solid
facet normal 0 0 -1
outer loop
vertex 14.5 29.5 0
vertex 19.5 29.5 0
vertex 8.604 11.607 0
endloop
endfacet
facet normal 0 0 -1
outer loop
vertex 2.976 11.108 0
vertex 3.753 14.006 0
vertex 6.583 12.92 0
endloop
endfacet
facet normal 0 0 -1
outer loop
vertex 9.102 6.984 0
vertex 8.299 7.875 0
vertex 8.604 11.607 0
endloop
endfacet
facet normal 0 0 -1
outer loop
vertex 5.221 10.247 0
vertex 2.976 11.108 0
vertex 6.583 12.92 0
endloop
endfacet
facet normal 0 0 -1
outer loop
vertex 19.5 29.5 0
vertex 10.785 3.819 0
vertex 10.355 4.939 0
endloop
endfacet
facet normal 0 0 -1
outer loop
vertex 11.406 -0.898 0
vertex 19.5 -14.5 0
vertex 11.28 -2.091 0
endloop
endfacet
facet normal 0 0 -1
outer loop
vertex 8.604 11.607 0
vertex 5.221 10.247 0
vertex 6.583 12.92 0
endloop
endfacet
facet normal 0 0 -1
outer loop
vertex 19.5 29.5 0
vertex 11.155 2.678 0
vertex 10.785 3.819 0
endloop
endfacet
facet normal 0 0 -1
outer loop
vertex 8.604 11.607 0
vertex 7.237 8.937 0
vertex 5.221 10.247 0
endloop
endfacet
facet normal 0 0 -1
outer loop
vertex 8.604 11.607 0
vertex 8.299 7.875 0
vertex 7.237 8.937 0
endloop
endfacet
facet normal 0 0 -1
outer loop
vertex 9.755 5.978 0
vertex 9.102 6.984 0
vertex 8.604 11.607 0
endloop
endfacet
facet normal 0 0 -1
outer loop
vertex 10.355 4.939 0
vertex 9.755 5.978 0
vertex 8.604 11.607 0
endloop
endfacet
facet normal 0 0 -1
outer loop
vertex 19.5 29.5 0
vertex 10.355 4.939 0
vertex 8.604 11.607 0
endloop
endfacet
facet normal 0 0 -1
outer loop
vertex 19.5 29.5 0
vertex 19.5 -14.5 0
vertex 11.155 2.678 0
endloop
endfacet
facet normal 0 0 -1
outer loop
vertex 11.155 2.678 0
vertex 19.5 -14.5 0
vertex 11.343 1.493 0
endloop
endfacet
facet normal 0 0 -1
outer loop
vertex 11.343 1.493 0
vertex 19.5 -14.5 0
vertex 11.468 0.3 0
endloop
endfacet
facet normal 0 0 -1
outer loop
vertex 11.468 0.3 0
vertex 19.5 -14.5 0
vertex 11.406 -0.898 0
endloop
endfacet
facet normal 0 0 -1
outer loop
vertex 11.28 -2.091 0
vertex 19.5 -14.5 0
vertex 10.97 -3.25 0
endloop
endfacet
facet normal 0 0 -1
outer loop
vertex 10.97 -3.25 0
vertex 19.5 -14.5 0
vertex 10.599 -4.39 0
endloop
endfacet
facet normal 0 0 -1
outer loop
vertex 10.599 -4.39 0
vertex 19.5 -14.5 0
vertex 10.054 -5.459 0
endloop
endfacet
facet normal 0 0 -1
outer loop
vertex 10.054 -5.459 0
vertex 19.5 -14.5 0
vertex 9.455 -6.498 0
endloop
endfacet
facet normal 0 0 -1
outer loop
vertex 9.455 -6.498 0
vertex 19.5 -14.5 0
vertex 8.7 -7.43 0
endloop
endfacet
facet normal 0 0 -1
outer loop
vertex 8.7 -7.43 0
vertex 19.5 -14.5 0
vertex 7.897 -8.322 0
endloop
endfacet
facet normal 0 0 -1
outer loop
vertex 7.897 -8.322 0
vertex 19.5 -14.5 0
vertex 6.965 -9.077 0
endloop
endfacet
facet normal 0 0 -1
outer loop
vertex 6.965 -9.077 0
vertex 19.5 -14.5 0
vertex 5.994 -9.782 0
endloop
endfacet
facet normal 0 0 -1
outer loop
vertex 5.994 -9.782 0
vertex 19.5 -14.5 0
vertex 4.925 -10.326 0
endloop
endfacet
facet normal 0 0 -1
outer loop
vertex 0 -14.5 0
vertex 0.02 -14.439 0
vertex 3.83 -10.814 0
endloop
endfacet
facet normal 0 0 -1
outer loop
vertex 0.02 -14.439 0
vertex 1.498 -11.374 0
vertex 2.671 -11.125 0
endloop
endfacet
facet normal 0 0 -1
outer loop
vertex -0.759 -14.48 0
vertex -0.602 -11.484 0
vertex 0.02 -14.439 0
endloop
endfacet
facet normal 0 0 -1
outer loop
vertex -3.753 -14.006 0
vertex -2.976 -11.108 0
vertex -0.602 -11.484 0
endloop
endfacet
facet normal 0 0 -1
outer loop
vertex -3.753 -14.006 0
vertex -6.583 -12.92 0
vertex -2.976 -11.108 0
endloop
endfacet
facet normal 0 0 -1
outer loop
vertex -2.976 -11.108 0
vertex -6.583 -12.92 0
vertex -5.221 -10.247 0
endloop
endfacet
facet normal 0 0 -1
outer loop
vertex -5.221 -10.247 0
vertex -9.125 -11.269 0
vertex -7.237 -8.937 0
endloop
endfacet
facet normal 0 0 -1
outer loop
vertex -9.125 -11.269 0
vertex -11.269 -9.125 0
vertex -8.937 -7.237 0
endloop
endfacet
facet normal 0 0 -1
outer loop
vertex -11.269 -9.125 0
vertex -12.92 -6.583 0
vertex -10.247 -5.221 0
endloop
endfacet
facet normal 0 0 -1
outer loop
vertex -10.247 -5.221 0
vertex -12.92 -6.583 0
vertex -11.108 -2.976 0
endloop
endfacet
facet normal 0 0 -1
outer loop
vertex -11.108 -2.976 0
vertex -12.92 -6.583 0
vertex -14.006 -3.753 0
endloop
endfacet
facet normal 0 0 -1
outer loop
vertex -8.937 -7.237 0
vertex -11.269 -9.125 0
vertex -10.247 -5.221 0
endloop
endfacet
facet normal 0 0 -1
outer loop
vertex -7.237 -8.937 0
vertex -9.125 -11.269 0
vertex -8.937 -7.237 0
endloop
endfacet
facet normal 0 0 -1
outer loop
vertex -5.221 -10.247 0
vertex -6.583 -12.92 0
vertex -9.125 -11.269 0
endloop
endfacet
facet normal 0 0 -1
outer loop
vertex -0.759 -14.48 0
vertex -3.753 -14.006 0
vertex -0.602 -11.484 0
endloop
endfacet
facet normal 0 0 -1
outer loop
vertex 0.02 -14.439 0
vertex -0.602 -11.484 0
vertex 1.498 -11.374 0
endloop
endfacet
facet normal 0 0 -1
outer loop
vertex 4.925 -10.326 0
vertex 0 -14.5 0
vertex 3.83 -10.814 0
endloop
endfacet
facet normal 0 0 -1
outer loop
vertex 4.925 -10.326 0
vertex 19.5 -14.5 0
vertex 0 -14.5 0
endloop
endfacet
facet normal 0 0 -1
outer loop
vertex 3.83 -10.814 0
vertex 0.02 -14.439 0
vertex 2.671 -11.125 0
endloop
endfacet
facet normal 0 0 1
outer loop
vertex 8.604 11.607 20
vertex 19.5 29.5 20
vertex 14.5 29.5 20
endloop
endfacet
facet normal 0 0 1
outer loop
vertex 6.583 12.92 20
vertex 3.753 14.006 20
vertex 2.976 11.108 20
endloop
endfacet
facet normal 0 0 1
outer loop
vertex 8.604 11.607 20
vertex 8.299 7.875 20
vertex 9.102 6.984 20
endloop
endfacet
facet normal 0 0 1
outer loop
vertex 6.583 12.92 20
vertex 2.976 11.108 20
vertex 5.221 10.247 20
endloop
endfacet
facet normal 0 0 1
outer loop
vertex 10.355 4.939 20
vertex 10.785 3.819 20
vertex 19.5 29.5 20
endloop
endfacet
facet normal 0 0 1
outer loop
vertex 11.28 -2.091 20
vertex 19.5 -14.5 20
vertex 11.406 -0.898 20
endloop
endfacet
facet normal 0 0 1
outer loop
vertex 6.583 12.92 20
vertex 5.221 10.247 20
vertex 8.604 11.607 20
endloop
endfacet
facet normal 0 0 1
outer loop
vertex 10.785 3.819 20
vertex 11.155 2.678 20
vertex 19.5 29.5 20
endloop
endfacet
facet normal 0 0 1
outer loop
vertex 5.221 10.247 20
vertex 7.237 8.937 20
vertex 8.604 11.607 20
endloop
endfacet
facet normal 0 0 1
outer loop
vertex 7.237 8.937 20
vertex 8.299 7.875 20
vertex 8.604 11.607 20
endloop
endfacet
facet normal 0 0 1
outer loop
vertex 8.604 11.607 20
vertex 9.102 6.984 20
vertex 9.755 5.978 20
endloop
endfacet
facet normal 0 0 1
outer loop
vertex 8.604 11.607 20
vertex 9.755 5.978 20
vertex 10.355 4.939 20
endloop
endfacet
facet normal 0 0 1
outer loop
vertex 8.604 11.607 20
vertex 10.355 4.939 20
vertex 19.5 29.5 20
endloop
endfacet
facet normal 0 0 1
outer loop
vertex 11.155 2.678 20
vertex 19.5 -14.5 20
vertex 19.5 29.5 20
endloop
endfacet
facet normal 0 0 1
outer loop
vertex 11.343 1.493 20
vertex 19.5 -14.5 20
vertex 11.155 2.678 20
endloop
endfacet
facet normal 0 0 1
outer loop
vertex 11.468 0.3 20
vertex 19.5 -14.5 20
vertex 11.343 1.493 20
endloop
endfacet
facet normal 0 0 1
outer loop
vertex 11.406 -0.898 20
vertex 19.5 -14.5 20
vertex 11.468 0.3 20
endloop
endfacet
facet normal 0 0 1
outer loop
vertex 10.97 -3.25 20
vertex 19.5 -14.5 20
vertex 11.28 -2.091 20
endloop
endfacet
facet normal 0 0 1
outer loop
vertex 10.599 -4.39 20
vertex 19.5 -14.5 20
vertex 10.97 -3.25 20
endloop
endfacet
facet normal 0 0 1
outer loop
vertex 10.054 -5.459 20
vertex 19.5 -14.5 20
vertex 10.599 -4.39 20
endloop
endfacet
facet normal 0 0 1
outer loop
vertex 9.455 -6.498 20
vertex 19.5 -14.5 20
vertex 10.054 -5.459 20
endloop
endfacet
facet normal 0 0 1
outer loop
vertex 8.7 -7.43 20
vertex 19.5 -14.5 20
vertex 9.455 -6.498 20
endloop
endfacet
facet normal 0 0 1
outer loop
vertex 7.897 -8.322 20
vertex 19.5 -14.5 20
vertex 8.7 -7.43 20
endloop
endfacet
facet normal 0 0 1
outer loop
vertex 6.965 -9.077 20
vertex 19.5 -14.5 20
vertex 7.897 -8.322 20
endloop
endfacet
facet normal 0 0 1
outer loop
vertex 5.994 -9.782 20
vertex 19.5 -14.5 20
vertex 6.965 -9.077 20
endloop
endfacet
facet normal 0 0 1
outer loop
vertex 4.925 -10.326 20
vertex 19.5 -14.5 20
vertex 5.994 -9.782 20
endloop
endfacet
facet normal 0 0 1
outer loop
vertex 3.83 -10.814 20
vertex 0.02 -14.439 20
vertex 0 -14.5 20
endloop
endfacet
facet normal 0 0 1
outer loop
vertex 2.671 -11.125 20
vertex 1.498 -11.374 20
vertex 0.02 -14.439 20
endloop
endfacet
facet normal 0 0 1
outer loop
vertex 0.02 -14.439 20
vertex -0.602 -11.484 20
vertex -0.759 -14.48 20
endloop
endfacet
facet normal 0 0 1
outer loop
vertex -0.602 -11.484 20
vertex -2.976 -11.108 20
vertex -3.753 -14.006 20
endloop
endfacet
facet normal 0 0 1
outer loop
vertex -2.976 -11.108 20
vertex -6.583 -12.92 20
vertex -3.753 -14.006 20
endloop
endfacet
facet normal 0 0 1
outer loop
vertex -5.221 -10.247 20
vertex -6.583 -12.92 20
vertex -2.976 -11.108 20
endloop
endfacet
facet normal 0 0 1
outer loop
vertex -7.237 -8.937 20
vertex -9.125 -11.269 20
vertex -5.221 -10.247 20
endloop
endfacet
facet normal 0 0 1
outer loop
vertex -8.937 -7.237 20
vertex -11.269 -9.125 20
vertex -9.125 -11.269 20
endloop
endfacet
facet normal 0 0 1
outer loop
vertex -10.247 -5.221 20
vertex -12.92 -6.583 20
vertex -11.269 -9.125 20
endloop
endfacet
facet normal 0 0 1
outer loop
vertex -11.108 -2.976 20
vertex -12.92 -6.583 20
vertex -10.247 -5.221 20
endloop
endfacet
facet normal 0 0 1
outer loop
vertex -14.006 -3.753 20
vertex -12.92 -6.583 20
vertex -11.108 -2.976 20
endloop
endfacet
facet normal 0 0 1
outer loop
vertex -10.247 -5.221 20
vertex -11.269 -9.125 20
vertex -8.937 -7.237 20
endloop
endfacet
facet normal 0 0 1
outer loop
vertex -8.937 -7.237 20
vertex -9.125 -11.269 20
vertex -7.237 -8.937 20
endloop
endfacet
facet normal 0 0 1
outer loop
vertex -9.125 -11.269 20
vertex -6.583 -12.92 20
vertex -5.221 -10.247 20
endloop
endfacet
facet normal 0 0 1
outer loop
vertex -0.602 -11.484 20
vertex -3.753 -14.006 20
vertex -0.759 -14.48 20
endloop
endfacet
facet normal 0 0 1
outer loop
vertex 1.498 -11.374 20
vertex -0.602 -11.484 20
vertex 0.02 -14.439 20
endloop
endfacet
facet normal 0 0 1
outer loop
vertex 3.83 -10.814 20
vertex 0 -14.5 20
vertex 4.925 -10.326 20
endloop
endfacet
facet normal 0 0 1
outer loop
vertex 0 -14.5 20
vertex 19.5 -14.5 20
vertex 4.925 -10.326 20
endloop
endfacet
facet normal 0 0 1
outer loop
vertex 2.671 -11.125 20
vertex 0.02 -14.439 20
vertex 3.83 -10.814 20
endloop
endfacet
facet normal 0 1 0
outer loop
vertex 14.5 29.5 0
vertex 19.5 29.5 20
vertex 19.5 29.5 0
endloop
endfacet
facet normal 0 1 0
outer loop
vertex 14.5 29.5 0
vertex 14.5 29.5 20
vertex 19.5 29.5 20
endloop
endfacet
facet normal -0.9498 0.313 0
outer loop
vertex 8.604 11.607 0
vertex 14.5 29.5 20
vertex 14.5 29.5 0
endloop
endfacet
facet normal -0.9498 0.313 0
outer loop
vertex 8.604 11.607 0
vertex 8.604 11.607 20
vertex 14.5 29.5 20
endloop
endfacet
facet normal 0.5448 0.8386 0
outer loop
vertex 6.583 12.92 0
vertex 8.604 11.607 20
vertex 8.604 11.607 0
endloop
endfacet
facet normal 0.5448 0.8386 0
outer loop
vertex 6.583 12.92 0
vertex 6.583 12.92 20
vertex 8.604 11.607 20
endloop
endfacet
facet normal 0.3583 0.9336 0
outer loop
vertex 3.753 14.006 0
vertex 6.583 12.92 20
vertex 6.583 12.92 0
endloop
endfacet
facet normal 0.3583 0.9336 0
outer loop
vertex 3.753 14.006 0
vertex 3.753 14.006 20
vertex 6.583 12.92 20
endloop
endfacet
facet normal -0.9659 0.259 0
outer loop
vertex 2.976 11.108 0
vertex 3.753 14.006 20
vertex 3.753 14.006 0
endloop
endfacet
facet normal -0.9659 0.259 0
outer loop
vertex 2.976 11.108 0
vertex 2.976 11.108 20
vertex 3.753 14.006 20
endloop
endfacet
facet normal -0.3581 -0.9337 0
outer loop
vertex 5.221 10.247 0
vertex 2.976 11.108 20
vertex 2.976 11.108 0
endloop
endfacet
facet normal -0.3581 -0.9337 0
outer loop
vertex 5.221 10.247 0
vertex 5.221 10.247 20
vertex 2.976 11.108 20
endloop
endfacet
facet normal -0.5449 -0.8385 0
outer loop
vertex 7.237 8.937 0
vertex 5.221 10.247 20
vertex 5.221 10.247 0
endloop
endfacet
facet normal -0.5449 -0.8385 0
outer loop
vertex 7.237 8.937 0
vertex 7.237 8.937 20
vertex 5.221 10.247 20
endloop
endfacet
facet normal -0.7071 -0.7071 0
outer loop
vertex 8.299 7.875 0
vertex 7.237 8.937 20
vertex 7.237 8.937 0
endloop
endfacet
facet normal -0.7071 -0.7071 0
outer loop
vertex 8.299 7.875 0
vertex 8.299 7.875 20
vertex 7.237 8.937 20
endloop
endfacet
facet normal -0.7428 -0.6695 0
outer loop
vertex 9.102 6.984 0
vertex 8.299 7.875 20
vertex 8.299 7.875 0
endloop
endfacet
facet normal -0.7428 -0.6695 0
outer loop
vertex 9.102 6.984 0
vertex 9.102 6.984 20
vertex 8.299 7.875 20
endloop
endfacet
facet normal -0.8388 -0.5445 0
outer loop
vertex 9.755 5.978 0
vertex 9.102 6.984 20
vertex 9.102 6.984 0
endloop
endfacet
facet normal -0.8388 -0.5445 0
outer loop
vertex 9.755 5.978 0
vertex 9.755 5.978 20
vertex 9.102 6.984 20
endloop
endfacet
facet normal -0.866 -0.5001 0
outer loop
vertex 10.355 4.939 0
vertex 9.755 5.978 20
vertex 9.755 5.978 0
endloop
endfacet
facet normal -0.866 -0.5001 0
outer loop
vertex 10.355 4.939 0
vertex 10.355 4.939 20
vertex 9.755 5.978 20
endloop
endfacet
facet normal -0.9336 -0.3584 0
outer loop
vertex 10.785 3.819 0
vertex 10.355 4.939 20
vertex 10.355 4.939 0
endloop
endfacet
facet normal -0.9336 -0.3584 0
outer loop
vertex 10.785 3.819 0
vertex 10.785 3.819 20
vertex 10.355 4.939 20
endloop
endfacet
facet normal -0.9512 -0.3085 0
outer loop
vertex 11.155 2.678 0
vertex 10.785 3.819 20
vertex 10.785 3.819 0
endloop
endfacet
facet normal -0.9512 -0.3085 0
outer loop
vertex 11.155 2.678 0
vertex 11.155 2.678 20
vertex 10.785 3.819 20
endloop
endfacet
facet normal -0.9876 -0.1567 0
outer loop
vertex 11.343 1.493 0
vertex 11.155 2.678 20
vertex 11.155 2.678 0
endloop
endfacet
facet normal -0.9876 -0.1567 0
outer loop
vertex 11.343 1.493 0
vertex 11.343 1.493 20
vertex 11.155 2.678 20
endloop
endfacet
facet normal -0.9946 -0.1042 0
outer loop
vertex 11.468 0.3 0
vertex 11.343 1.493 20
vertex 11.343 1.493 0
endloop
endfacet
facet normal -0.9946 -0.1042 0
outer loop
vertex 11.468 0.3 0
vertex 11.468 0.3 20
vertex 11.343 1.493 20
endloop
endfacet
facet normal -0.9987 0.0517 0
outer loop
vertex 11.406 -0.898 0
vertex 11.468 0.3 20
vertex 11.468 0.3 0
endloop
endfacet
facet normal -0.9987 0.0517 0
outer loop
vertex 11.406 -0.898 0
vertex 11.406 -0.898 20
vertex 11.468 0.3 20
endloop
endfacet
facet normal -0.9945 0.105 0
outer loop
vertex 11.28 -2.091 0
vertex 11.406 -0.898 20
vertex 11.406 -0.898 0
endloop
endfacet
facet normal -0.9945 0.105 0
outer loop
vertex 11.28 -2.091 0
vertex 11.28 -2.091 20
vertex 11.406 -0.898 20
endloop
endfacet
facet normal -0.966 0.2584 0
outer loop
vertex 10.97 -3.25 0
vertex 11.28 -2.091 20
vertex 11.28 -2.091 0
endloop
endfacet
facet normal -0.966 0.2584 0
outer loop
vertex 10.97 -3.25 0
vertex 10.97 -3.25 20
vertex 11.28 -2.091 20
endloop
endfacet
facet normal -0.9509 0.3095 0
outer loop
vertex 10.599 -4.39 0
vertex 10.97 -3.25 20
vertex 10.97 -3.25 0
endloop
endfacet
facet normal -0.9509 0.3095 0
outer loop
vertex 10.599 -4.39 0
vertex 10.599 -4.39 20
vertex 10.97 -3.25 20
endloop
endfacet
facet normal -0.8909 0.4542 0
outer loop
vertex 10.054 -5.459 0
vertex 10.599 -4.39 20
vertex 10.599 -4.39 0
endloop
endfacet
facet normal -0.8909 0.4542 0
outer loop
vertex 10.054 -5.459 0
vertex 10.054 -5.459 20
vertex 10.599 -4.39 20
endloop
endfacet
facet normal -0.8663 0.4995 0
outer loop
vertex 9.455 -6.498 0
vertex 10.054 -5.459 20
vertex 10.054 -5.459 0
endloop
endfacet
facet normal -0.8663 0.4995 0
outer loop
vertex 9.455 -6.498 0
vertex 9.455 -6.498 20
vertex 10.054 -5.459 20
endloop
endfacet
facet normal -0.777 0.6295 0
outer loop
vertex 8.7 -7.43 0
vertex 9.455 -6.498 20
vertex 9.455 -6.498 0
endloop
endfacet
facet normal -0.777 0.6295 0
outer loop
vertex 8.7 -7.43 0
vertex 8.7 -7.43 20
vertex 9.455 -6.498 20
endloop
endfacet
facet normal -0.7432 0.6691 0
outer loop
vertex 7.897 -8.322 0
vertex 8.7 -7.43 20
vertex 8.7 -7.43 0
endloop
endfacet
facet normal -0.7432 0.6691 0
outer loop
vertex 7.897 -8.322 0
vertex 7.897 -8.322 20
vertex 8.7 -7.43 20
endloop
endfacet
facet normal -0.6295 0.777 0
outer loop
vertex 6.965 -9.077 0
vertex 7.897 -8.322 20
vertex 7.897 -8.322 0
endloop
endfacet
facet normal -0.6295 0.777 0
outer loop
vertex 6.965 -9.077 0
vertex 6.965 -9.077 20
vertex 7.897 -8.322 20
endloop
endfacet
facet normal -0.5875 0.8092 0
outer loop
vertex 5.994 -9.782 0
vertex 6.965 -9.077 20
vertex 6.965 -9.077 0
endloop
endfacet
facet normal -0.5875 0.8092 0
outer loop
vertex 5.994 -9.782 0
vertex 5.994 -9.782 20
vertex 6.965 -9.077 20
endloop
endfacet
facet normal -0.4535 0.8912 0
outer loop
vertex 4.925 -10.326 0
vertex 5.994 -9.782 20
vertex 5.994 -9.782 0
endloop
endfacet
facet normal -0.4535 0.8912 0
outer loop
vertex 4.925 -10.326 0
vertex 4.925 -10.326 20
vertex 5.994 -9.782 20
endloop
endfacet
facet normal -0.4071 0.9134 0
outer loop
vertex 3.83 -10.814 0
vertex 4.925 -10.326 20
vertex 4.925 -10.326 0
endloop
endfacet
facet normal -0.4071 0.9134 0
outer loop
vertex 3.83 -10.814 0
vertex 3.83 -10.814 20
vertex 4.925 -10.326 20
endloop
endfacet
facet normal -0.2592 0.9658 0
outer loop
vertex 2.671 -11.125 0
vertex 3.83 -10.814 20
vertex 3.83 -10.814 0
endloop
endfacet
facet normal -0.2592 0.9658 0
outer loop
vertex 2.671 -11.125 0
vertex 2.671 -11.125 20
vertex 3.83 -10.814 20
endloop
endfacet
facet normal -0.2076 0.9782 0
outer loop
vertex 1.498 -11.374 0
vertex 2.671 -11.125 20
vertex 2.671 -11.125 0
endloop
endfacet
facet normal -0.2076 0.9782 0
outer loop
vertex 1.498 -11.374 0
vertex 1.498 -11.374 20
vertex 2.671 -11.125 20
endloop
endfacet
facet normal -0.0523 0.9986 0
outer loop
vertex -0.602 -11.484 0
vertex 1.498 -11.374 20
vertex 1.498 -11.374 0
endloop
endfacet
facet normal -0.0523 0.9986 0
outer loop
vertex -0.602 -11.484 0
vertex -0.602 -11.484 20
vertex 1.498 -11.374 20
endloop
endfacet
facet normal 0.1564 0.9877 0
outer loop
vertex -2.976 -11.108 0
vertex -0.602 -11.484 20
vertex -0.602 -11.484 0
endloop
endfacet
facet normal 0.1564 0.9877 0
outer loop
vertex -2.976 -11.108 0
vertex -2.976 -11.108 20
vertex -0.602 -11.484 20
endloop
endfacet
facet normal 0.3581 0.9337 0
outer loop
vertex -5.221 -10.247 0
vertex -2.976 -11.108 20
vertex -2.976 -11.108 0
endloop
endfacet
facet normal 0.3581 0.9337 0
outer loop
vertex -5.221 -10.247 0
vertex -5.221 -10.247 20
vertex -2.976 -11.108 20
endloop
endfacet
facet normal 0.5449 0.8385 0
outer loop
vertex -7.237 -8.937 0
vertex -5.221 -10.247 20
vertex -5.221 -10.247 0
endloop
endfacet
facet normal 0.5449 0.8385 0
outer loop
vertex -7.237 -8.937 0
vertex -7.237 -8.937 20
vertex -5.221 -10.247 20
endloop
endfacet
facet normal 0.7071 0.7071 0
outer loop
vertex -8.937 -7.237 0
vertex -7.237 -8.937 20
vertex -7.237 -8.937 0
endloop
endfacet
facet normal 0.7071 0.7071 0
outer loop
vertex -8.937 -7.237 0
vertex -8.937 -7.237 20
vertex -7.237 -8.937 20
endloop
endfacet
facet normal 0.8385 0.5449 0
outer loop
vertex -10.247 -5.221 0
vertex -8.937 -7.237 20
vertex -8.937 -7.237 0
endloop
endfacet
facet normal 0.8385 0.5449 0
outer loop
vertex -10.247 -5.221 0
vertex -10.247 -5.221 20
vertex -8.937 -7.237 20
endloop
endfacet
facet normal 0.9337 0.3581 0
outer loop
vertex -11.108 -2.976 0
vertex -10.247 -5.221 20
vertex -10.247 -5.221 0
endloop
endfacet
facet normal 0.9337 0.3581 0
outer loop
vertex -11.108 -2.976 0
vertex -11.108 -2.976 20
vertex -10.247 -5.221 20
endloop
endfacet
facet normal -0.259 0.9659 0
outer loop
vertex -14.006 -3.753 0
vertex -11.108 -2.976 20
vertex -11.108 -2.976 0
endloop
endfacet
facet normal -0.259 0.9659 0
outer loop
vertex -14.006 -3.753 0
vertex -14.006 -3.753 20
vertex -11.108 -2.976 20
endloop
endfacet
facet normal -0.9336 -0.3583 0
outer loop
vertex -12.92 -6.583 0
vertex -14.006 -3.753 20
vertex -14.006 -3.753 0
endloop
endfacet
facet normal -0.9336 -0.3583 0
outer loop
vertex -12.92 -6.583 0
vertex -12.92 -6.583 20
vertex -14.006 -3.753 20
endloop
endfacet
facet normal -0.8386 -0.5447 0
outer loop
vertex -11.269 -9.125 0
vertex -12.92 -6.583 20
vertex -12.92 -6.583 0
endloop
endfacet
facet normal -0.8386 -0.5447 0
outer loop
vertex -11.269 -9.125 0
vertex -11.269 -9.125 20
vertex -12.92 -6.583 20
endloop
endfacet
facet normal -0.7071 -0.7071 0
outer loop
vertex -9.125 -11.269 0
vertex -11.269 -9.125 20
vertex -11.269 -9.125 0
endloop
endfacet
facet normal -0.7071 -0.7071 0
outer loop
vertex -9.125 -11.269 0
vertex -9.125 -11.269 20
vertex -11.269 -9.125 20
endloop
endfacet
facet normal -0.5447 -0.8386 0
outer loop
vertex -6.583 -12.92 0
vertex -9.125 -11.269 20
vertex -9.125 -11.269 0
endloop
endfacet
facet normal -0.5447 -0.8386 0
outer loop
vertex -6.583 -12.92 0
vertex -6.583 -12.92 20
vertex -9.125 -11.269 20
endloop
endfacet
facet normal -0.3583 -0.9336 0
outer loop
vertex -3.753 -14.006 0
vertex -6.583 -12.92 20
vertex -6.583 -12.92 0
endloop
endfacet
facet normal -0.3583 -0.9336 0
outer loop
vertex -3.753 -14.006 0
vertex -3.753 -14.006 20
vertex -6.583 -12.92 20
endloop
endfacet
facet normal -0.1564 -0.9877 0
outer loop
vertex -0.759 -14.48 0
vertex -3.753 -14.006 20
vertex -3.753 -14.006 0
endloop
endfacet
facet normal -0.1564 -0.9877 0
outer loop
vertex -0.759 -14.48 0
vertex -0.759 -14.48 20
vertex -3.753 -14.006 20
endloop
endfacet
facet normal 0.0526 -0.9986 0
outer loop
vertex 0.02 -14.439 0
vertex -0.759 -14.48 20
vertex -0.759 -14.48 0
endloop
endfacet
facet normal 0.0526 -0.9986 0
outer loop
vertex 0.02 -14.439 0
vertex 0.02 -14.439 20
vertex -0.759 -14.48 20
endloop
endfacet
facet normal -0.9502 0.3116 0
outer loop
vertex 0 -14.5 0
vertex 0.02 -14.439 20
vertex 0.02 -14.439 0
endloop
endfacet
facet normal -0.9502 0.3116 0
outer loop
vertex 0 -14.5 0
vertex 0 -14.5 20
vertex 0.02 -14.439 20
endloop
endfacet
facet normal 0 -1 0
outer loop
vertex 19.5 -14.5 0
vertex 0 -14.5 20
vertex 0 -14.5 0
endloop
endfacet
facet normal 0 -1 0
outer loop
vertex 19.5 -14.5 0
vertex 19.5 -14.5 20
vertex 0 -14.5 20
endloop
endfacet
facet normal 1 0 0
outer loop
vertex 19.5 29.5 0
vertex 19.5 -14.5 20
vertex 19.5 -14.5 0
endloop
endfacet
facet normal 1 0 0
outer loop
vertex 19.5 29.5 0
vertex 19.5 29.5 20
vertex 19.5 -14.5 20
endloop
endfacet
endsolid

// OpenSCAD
// Arc Module for OpenSCAD by chickenchuck040 is licensed under the Creative Commons - Attribution license.
// https://www.thingiverse.com/thing:1092611/#files

module arc(radius, thick, angle){
        intersection(){
                union(){
                        rights = floor(angle/90);
                        remain = angle-rights*90;
                        if(angle > 90){
                                for(i = [0:rights-1]){
                                        rotate(i*90-(rights-1)*90/2){
                                                polygon([[0, 0], [radius+thick, (radius+thick)*tan(90/2)], [radius+thick, -(radius+thick)*tan(90/2)]]);
                                        }
                                }
                                rotate(-(rights)*90/2)
                                        polygon([[0, 0], [radius+thick, 0], [radius+thick, -(radius+thick)*tan(remain/2)]]);
                                rotate((rights)*90/2)
                                        polygon([[0, 0], [radius+thick, (radius+thick)*tan(remain/2)], [radius+thick, 0]]);
                        }else{
                                polygon([[0, 0], [radius+thick, (radius+thick)*tan(angle/2)], [radius+thick, -(radius+thick)*tan(angle/2)]]);
                        }
                }
                difference(){
                        circle(radius+thick);
                        circle(radius);
                }
        }
}


module holder(rad) {
    union() {
        rotate(-45) arc(rad, 3, 240);
        difference() {
            polygon(points=[[0,-(rad+3)],[(rad+3+5),-(rad+3)],[rad+3+5,rad+3+15],[rad+3,rad+3+15] ]);
            circle(rad);
        }
    }
}

linear_extrude(height=20)
holder(23/2);
